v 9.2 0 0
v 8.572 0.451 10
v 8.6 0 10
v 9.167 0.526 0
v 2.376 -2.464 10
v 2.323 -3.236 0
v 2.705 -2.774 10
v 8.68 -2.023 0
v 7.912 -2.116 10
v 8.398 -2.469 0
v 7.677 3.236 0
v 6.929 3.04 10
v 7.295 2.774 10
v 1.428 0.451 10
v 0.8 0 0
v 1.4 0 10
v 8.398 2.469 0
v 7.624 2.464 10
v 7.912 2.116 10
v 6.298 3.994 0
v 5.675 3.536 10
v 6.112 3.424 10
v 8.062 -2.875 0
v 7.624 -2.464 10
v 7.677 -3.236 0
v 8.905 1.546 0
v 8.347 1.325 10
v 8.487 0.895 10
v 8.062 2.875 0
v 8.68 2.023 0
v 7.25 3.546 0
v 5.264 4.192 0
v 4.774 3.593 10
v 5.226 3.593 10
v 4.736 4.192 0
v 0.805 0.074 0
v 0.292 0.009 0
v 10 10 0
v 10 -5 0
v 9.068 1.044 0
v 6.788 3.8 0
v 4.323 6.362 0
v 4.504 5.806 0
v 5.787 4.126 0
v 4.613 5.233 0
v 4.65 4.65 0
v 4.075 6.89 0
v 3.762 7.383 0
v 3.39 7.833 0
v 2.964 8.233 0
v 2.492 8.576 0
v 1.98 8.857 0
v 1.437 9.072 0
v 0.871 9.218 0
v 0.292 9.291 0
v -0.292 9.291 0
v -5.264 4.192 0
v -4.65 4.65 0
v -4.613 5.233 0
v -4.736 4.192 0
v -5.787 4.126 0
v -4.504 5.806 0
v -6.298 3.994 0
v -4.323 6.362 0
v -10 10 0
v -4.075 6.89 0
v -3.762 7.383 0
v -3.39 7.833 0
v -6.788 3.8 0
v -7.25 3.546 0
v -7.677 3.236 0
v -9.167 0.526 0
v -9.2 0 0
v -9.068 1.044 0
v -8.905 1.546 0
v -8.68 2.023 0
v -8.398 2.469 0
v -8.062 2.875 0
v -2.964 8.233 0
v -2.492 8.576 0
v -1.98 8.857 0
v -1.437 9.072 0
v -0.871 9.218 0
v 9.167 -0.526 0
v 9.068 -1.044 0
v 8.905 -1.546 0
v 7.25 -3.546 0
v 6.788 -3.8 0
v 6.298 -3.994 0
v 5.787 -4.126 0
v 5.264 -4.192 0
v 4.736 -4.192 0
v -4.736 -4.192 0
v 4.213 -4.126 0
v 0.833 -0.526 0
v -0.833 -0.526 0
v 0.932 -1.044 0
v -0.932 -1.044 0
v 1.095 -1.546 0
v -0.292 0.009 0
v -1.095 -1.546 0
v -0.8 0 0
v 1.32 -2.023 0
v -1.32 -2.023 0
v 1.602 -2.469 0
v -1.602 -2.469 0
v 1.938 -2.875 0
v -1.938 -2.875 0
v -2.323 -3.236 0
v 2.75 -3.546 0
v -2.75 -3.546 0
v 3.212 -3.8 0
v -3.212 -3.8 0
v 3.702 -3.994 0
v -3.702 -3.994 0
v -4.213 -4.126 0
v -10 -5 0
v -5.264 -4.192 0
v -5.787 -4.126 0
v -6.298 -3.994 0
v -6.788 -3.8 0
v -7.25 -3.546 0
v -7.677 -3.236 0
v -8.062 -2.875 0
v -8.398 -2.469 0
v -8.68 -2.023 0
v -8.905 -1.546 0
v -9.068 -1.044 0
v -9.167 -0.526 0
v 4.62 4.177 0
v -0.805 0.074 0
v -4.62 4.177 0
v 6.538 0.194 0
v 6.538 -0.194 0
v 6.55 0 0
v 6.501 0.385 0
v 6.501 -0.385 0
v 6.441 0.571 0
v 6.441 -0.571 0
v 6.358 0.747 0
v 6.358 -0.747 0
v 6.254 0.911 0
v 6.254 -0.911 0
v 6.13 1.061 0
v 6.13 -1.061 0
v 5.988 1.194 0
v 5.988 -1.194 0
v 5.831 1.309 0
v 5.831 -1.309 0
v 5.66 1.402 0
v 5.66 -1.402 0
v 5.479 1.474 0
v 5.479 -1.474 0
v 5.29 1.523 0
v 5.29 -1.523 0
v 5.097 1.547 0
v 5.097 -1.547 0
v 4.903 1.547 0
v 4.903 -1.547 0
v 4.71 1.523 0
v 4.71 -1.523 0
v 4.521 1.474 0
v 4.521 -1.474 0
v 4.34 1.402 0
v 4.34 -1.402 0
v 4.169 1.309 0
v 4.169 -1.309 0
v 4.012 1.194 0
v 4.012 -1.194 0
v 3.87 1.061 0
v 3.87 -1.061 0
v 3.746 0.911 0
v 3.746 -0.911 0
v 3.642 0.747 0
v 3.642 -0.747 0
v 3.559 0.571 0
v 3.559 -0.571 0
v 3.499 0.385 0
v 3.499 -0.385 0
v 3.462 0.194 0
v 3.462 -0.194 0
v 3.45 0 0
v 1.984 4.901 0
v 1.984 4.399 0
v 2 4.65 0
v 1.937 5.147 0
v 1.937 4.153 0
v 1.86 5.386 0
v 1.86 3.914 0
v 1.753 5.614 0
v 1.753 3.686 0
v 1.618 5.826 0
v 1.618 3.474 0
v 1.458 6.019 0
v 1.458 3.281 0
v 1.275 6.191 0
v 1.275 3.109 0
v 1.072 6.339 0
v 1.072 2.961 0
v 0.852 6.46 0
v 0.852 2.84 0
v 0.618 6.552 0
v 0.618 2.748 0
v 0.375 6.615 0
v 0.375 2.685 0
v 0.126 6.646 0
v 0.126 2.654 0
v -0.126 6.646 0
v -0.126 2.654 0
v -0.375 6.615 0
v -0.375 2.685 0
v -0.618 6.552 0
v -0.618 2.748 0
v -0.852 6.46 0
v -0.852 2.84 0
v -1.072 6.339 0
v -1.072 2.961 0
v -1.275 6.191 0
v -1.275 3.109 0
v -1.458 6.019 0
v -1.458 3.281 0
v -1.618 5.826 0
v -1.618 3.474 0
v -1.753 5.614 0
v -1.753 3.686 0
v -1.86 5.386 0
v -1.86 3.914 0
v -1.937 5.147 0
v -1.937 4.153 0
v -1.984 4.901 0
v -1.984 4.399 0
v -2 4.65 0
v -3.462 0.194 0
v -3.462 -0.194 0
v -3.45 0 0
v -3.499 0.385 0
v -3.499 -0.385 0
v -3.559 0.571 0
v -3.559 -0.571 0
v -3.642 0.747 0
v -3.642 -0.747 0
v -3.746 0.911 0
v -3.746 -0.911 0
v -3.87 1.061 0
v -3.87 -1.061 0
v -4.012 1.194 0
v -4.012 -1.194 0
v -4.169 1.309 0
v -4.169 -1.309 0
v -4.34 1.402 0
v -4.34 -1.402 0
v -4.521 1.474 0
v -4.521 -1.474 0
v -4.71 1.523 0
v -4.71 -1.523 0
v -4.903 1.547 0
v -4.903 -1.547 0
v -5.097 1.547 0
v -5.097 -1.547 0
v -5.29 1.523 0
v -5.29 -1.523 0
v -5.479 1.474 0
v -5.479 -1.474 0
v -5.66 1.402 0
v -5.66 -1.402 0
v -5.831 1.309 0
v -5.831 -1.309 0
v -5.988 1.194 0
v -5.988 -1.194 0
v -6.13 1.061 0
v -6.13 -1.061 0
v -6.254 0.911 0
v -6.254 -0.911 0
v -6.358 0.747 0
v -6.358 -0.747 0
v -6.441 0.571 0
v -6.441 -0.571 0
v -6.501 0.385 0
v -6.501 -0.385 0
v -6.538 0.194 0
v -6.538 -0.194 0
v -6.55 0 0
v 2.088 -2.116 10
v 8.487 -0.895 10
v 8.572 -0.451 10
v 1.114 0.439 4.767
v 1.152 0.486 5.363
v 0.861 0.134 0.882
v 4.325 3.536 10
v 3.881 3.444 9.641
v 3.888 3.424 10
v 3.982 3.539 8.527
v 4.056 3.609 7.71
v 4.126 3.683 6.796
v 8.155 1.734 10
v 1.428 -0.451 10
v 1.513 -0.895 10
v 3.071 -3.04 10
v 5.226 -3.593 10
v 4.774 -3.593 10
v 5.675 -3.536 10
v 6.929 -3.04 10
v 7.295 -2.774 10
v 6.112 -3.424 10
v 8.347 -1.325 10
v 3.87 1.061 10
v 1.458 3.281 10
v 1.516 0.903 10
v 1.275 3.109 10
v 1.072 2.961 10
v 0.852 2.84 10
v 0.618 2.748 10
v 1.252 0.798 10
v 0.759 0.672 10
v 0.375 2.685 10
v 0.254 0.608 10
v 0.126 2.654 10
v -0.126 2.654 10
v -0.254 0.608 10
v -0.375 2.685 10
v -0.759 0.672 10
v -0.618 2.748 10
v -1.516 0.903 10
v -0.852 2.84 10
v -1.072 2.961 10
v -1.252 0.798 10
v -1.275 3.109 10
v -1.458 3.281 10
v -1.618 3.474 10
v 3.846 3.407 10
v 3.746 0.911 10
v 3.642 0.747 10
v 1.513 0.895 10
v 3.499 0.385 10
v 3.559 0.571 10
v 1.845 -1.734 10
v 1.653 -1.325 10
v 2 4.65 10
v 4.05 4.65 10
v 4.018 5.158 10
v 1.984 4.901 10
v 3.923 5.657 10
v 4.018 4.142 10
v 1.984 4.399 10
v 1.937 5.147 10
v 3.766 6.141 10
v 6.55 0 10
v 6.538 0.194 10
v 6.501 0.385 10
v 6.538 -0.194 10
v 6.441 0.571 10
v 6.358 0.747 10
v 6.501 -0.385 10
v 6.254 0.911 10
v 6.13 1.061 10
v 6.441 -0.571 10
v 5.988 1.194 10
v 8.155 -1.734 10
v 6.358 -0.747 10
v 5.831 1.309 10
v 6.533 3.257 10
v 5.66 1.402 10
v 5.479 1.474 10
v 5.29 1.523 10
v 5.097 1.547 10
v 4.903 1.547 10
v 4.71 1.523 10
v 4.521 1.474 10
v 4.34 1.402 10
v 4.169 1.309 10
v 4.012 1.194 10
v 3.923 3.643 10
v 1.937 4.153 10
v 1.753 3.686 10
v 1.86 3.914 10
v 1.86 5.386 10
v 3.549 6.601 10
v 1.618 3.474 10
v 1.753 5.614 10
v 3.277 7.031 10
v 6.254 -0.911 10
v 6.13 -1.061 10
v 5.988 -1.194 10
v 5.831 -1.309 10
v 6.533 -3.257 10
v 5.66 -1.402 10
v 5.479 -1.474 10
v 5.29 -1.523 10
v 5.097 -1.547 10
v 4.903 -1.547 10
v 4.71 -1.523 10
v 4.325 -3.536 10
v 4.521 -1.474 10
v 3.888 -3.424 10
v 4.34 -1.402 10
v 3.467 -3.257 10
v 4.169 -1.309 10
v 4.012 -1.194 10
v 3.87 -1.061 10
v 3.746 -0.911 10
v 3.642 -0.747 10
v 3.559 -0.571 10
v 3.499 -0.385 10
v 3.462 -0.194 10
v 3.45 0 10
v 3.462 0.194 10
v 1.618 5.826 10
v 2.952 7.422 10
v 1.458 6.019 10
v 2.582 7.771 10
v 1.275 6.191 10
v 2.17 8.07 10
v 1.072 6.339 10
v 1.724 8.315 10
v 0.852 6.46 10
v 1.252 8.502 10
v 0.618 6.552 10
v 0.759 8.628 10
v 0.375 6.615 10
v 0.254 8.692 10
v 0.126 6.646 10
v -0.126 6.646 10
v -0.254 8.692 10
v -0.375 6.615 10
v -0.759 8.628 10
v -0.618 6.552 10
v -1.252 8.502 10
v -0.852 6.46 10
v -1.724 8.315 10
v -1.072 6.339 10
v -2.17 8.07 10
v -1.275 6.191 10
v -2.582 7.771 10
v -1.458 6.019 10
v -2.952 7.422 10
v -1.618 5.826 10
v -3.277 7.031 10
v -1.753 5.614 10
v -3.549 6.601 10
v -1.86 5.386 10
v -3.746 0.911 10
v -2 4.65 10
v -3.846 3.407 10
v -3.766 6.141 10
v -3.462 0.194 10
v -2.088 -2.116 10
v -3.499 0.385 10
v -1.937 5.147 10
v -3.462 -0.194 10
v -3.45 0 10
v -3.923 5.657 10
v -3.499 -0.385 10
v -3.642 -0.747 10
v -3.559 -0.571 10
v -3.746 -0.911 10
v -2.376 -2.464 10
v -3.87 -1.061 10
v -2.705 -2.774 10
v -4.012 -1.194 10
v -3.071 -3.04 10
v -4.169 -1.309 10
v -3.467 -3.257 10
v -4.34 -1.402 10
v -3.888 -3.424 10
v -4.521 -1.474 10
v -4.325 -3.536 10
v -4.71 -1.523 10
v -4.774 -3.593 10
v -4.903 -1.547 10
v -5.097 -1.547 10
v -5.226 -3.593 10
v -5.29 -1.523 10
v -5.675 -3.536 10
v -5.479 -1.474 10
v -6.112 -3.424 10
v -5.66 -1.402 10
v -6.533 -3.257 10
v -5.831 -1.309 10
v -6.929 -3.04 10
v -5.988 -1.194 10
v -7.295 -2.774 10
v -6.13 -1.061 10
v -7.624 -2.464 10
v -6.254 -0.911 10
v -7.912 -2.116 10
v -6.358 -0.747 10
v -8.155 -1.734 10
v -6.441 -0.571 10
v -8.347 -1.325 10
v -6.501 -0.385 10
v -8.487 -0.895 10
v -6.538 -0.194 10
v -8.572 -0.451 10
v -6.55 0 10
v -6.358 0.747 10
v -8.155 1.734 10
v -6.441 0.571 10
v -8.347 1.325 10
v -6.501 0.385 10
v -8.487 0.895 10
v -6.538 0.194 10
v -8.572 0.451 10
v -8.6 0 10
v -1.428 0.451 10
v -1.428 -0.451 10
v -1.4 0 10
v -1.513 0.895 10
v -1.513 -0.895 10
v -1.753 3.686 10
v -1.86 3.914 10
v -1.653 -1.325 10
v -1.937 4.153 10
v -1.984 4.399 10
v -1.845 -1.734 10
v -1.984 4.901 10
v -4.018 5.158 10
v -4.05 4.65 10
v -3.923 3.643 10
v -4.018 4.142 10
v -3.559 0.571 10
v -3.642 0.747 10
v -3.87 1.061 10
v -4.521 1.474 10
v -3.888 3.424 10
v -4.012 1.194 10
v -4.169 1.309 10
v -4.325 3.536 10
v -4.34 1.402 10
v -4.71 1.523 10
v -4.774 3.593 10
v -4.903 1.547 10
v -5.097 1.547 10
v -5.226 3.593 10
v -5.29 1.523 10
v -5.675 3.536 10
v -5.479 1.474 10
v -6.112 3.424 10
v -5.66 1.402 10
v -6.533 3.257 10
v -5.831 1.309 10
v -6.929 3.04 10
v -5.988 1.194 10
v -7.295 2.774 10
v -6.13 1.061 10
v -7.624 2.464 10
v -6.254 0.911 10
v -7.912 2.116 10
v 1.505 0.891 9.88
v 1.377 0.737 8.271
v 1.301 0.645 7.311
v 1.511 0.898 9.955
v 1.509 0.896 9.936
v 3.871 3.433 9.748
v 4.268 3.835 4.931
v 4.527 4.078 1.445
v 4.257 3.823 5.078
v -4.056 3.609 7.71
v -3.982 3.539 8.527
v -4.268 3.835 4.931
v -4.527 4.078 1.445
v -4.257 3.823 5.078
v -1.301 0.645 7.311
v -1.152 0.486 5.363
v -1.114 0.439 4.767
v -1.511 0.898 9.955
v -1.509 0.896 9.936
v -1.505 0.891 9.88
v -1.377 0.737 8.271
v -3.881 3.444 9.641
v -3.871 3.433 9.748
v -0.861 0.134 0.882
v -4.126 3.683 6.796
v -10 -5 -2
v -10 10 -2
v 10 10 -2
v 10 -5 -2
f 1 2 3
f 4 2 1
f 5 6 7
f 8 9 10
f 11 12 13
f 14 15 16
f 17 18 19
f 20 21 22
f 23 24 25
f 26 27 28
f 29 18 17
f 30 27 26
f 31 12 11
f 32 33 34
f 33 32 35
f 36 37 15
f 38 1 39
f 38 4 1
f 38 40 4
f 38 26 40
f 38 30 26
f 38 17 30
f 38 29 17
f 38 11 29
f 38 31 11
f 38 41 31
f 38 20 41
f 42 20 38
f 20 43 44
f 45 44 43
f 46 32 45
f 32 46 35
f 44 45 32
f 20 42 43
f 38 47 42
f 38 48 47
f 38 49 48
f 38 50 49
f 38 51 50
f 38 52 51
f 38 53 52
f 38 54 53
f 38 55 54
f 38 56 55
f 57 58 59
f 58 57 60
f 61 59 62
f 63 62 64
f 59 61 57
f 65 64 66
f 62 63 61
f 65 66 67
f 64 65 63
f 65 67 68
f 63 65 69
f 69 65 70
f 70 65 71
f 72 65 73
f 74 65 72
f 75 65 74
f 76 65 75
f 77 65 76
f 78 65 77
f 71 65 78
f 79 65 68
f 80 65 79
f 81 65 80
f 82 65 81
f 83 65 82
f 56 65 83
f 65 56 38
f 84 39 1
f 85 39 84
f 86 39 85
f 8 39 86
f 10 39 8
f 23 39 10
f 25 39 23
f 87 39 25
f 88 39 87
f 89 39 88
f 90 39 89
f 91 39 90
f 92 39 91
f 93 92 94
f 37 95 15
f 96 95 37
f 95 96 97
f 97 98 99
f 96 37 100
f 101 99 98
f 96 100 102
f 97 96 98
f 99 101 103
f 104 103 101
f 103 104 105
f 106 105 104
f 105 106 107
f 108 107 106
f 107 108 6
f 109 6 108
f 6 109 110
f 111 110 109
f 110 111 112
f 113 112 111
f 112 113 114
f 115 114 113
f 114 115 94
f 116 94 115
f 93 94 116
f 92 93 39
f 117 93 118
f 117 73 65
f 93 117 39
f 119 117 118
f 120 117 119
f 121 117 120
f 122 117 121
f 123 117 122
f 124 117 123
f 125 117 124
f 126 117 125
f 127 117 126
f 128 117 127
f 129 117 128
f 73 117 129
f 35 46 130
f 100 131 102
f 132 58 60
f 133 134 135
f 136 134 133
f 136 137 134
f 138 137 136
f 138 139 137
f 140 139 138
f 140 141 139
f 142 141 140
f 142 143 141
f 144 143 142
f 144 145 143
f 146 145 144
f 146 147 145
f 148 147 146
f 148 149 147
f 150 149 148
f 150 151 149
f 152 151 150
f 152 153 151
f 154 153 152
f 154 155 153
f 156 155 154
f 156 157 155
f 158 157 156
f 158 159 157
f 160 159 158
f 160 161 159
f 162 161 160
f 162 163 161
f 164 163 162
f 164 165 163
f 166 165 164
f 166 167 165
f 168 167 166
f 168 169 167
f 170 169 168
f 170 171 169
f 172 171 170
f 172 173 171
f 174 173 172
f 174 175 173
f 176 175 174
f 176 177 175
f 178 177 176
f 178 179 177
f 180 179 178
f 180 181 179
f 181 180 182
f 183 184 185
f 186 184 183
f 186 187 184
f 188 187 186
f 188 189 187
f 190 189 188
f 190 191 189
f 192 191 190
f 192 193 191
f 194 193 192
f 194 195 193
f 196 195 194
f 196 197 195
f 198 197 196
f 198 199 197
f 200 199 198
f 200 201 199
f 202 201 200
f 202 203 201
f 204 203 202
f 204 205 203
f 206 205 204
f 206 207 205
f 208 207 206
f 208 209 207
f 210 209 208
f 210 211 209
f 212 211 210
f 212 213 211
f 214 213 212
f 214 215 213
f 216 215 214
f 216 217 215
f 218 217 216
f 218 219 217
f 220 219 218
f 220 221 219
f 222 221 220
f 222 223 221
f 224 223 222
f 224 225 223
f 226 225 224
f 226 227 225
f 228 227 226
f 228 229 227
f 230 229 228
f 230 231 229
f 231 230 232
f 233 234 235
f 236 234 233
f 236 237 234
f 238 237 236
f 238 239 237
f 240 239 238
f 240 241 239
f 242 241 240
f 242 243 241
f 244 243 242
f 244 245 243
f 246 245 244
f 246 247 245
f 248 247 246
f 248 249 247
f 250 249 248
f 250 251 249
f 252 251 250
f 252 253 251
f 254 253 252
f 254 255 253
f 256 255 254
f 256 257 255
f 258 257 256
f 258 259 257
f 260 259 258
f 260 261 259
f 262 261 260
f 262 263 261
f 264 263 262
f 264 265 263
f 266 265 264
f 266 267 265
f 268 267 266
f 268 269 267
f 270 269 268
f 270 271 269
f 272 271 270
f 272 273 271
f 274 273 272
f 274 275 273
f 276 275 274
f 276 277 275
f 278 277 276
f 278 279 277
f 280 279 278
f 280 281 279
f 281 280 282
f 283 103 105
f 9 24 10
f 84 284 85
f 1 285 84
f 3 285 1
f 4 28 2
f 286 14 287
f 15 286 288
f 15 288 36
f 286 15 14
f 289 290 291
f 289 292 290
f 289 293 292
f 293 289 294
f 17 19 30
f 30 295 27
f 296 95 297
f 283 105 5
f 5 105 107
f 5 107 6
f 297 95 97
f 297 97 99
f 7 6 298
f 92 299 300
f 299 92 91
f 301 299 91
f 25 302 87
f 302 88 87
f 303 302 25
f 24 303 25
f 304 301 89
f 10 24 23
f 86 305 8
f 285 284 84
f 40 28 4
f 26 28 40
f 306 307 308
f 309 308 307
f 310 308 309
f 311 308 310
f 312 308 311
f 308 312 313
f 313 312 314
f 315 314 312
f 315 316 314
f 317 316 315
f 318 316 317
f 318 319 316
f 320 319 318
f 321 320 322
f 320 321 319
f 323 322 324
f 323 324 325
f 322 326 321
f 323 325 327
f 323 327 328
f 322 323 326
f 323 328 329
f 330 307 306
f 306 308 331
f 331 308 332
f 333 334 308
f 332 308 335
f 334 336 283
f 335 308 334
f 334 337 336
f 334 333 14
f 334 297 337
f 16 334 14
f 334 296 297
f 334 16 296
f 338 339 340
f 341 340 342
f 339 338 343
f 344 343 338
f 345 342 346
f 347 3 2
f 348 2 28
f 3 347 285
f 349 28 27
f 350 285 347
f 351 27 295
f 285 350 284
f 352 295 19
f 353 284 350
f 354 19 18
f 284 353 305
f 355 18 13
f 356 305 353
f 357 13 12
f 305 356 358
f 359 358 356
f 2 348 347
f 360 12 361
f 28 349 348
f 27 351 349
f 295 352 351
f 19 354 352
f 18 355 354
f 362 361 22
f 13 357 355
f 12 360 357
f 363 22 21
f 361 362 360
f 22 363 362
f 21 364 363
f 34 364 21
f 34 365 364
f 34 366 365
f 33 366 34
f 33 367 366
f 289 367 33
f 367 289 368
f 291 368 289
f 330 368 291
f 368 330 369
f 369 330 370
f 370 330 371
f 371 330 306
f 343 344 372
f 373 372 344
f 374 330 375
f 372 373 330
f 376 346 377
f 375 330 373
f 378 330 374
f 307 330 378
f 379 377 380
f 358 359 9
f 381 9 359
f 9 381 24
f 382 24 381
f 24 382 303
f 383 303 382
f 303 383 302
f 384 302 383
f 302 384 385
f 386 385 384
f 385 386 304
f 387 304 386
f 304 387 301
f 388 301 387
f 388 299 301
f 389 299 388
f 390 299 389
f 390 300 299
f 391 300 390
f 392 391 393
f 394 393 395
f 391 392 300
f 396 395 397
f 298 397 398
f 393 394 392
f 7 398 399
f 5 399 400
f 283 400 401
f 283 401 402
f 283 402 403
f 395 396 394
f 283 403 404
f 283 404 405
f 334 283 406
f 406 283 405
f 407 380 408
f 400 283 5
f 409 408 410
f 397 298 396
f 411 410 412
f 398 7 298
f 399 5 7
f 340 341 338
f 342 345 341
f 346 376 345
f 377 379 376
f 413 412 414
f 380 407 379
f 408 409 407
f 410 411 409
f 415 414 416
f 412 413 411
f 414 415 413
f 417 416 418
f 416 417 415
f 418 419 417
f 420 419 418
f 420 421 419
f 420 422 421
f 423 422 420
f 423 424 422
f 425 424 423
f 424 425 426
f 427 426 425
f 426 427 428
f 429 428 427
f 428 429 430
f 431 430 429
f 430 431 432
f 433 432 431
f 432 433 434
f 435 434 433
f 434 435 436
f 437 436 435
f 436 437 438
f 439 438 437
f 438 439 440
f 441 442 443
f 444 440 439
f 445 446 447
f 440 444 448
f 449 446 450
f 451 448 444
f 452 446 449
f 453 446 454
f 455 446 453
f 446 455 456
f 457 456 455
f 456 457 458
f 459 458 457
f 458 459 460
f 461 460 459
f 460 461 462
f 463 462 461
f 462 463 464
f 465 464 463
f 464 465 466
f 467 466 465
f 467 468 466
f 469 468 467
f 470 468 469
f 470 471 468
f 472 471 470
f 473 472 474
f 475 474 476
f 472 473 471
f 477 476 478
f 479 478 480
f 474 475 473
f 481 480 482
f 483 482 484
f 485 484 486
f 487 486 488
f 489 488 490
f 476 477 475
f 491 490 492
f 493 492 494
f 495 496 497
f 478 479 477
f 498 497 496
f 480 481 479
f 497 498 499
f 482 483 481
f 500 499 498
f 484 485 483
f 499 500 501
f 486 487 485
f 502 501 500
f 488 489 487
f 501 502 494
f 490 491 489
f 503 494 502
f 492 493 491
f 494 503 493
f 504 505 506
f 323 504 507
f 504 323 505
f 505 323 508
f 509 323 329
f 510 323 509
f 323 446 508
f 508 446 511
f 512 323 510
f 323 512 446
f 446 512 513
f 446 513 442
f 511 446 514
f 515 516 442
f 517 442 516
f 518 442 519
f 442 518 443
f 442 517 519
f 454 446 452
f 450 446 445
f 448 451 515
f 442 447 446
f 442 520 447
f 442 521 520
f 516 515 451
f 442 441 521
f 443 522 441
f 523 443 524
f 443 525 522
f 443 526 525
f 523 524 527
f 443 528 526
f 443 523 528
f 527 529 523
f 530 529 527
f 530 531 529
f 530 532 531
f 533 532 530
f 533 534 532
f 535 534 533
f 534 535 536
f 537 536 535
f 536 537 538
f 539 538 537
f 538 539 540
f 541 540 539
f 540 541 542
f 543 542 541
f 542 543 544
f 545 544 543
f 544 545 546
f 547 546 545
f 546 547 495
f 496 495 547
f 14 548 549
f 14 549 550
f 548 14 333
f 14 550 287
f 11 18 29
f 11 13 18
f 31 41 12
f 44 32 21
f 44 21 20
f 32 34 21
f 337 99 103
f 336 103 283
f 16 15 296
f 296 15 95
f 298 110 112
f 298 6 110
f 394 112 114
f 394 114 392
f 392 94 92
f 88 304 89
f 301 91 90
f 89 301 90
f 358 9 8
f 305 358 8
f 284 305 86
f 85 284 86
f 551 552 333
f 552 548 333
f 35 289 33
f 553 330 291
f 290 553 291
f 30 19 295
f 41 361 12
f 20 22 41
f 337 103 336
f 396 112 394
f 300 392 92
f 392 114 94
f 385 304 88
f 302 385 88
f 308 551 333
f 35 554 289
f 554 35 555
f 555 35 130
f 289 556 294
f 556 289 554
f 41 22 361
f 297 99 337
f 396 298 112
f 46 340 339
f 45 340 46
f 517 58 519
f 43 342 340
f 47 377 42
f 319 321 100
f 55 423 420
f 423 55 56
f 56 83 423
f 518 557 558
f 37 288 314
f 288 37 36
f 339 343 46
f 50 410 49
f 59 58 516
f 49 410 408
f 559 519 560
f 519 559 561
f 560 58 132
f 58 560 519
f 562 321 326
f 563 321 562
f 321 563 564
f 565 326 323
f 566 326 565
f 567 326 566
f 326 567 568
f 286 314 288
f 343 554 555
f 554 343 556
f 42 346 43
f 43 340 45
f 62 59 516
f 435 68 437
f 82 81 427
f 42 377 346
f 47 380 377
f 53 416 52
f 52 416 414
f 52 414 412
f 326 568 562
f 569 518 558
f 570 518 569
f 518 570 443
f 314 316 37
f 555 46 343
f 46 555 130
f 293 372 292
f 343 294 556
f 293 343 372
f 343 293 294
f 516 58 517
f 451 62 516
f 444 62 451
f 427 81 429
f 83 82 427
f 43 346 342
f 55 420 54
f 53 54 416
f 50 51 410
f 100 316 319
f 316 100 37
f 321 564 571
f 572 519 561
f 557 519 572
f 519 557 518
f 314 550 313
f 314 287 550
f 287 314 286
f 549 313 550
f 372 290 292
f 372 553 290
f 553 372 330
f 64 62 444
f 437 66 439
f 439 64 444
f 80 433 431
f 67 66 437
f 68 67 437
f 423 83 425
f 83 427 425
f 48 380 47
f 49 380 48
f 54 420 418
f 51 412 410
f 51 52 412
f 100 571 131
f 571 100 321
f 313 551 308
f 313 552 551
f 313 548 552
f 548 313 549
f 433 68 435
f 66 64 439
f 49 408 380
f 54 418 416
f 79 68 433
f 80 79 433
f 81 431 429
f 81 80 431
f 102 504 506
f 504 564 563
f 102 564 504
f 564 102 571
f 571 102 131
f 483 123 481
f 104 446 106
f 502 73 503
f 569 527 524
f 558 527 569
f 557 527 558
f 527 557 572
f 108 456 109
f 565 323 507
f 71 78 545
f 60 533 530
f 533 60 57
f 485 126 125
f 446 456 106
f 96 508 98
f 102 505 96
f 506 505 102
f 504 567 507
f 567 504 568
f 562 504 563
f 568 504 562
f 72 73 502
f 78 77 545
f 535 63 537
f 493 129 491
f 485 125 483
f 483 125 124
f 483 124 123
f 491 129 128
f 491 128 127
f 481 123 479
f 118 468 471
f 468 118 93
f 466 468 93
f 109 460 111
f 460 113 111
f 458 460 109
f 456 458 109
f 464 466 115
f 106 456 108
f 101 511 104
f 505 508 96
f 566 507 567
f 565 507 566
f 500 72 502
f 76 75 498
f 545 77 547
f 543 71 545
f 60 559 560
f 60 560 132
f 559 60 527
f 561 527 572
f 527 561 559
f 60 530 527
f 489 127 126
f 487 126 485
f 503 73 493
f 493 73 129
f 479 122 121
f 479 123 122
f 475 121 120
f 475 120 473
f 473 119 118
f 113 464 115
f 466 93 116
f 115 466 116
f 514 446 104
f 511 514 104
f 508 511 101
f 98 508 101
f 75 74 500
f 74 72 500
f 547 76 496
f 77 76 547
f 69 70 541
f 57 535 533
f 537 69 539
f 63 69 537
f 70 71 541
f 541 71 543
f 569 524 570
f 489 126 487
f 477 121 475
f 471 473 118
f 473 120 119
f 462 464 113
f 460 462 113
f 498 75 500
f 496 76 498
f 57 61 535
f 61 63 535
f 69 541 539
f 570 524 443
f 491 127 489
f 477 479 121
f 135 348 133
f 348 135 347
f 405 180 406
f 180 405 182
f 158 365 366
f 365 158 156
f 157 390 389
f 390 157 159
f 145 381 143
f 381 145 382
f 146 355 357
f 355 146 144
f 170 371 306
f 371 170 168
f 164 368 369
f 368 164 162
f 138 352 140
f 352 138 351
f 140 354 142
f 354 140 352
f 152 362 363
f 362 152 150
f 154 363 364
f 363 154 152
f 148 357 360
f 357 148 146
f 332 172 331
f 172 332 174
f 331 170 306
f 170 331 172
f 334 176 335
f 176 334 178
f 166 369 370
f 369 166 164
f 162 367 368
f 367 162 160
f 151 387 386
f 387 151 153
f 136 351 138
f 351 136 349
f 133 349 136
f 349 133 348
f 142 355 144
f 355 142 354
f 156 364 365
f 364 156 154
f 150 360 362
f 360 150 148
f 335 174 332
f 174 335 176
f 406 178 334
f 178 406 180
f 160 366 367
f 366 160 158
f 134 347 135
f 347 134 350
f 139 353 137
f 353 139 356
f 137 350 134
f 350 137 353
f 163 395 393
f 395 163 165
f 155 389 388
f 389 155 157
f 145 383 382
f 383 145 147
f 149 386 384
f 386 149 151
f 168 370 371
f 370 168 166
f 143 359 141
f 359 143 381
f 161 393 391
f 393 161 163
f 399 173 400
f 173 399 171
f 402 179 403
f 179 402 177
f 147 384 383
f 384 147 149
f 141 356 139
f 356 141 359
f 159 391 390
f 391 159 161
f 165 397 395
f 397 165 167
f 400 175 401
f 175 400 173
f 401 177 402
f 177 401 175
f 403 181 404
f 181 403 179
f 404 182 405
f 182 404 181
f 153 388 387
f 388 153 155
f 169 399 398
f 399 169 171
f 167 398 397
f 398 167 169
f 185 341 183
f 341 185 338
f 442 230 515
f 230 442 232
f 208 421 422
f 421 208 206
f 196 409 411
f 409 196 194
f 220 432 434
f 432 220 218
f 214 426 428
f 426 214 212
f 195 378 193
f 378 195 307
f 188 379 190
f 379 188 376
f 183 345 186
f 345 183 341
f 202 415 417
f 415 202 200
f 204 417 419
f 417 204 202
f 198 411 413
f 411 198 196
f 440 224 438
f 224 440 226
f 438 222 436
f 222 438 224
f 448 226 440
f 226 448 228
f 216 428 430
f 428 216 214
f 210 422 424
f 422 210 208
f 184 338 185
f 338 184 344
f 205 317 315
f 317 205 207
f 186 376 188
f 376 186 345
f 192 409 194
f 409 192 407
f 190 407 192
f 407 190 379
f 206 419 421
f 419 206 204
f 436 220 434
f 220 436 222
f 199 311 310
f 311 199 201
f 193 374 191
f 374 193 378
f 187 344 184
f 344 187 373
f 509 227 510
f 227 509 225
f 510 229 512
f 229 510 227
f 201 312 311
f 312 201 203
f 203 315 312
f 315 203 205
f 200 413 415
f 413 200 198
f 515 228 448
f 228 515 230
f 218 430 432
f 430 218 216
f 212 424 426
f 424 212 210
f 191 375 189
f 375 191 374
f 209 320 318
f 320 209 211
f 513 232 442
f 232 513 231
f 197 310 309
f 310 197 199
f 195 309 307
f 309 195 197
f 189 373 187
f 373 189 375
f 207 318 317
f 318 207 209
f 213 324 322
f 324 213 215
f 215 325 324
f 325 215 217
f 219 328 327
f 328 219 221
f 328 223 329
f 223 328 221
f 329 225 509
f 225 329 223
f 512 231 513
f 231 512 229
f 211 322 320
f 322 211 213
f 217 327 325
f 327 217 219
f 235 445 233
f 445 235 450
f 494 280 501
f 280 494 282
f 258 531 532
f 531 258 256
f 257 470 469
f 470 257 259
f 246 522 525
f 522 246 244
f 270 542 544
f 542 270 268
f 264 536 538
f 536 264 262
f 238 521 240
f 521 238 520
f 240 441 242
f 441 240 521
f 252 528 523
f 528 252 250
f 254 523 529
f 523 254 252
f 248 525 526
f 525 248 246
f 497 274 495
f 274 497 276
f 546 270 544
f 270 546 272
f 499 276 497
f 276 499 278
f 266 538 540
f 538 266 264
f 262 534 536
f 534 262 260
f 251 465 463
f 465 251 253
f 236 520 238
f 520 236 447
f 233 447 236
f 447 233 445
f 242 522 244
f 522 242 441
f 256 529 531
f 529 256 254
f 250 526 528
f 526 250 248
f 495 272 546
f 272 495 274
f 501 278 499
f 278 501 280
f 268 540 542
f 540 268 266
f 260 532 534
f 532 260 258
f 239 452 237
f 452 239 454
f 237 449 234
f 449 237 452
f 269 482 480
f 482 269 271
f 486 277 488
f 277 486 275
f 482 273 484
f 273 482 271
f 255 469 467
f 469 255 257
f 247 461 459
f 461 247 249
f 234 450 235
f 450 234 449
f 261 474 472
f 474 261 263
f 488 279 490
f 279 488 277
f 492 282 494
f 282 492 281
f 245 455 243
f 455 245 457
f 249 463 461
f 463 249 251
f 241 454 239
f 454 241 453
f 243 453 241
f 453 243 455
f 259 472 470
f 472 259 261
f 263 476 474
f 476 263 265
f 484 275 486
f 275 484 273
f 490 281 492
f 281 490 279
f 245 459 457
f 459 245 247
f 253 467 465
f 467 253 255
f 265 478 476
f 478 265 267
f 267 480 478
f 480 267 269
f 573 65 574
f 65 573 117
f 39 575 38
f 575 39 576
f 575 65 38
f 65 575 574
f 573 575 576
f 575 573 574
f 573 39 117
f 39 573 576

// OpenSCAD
$fn=50;
union() {
  translate([0,0,5]) difference() {
    union() {
      translate([5,0,0]) cylinder(r2=7.2/2,r1=8.4/2,h=10,center=true);
      translate([0,4.65,0]) cylinder(r2=8.1/2,r1=9.3/2,h=10,center=true);
      translate([-5,0,0]) cylinder(r2=7.2/2,r1=8.4/2,h=10,center=true);
    }
    translate([5,0,0]) cylinder(r=3.1/2,h=10.1,center=true);
    translate([0,4.65,0]) cylinder(r=4.0/2,h=10.1,center=true);
    translate([-5,0,0]) cylinder(r=3.1/2,h=10.1,center=true);
  }
  translate([0,2.5,-1]) cube([20,15,2],center=true);
}
